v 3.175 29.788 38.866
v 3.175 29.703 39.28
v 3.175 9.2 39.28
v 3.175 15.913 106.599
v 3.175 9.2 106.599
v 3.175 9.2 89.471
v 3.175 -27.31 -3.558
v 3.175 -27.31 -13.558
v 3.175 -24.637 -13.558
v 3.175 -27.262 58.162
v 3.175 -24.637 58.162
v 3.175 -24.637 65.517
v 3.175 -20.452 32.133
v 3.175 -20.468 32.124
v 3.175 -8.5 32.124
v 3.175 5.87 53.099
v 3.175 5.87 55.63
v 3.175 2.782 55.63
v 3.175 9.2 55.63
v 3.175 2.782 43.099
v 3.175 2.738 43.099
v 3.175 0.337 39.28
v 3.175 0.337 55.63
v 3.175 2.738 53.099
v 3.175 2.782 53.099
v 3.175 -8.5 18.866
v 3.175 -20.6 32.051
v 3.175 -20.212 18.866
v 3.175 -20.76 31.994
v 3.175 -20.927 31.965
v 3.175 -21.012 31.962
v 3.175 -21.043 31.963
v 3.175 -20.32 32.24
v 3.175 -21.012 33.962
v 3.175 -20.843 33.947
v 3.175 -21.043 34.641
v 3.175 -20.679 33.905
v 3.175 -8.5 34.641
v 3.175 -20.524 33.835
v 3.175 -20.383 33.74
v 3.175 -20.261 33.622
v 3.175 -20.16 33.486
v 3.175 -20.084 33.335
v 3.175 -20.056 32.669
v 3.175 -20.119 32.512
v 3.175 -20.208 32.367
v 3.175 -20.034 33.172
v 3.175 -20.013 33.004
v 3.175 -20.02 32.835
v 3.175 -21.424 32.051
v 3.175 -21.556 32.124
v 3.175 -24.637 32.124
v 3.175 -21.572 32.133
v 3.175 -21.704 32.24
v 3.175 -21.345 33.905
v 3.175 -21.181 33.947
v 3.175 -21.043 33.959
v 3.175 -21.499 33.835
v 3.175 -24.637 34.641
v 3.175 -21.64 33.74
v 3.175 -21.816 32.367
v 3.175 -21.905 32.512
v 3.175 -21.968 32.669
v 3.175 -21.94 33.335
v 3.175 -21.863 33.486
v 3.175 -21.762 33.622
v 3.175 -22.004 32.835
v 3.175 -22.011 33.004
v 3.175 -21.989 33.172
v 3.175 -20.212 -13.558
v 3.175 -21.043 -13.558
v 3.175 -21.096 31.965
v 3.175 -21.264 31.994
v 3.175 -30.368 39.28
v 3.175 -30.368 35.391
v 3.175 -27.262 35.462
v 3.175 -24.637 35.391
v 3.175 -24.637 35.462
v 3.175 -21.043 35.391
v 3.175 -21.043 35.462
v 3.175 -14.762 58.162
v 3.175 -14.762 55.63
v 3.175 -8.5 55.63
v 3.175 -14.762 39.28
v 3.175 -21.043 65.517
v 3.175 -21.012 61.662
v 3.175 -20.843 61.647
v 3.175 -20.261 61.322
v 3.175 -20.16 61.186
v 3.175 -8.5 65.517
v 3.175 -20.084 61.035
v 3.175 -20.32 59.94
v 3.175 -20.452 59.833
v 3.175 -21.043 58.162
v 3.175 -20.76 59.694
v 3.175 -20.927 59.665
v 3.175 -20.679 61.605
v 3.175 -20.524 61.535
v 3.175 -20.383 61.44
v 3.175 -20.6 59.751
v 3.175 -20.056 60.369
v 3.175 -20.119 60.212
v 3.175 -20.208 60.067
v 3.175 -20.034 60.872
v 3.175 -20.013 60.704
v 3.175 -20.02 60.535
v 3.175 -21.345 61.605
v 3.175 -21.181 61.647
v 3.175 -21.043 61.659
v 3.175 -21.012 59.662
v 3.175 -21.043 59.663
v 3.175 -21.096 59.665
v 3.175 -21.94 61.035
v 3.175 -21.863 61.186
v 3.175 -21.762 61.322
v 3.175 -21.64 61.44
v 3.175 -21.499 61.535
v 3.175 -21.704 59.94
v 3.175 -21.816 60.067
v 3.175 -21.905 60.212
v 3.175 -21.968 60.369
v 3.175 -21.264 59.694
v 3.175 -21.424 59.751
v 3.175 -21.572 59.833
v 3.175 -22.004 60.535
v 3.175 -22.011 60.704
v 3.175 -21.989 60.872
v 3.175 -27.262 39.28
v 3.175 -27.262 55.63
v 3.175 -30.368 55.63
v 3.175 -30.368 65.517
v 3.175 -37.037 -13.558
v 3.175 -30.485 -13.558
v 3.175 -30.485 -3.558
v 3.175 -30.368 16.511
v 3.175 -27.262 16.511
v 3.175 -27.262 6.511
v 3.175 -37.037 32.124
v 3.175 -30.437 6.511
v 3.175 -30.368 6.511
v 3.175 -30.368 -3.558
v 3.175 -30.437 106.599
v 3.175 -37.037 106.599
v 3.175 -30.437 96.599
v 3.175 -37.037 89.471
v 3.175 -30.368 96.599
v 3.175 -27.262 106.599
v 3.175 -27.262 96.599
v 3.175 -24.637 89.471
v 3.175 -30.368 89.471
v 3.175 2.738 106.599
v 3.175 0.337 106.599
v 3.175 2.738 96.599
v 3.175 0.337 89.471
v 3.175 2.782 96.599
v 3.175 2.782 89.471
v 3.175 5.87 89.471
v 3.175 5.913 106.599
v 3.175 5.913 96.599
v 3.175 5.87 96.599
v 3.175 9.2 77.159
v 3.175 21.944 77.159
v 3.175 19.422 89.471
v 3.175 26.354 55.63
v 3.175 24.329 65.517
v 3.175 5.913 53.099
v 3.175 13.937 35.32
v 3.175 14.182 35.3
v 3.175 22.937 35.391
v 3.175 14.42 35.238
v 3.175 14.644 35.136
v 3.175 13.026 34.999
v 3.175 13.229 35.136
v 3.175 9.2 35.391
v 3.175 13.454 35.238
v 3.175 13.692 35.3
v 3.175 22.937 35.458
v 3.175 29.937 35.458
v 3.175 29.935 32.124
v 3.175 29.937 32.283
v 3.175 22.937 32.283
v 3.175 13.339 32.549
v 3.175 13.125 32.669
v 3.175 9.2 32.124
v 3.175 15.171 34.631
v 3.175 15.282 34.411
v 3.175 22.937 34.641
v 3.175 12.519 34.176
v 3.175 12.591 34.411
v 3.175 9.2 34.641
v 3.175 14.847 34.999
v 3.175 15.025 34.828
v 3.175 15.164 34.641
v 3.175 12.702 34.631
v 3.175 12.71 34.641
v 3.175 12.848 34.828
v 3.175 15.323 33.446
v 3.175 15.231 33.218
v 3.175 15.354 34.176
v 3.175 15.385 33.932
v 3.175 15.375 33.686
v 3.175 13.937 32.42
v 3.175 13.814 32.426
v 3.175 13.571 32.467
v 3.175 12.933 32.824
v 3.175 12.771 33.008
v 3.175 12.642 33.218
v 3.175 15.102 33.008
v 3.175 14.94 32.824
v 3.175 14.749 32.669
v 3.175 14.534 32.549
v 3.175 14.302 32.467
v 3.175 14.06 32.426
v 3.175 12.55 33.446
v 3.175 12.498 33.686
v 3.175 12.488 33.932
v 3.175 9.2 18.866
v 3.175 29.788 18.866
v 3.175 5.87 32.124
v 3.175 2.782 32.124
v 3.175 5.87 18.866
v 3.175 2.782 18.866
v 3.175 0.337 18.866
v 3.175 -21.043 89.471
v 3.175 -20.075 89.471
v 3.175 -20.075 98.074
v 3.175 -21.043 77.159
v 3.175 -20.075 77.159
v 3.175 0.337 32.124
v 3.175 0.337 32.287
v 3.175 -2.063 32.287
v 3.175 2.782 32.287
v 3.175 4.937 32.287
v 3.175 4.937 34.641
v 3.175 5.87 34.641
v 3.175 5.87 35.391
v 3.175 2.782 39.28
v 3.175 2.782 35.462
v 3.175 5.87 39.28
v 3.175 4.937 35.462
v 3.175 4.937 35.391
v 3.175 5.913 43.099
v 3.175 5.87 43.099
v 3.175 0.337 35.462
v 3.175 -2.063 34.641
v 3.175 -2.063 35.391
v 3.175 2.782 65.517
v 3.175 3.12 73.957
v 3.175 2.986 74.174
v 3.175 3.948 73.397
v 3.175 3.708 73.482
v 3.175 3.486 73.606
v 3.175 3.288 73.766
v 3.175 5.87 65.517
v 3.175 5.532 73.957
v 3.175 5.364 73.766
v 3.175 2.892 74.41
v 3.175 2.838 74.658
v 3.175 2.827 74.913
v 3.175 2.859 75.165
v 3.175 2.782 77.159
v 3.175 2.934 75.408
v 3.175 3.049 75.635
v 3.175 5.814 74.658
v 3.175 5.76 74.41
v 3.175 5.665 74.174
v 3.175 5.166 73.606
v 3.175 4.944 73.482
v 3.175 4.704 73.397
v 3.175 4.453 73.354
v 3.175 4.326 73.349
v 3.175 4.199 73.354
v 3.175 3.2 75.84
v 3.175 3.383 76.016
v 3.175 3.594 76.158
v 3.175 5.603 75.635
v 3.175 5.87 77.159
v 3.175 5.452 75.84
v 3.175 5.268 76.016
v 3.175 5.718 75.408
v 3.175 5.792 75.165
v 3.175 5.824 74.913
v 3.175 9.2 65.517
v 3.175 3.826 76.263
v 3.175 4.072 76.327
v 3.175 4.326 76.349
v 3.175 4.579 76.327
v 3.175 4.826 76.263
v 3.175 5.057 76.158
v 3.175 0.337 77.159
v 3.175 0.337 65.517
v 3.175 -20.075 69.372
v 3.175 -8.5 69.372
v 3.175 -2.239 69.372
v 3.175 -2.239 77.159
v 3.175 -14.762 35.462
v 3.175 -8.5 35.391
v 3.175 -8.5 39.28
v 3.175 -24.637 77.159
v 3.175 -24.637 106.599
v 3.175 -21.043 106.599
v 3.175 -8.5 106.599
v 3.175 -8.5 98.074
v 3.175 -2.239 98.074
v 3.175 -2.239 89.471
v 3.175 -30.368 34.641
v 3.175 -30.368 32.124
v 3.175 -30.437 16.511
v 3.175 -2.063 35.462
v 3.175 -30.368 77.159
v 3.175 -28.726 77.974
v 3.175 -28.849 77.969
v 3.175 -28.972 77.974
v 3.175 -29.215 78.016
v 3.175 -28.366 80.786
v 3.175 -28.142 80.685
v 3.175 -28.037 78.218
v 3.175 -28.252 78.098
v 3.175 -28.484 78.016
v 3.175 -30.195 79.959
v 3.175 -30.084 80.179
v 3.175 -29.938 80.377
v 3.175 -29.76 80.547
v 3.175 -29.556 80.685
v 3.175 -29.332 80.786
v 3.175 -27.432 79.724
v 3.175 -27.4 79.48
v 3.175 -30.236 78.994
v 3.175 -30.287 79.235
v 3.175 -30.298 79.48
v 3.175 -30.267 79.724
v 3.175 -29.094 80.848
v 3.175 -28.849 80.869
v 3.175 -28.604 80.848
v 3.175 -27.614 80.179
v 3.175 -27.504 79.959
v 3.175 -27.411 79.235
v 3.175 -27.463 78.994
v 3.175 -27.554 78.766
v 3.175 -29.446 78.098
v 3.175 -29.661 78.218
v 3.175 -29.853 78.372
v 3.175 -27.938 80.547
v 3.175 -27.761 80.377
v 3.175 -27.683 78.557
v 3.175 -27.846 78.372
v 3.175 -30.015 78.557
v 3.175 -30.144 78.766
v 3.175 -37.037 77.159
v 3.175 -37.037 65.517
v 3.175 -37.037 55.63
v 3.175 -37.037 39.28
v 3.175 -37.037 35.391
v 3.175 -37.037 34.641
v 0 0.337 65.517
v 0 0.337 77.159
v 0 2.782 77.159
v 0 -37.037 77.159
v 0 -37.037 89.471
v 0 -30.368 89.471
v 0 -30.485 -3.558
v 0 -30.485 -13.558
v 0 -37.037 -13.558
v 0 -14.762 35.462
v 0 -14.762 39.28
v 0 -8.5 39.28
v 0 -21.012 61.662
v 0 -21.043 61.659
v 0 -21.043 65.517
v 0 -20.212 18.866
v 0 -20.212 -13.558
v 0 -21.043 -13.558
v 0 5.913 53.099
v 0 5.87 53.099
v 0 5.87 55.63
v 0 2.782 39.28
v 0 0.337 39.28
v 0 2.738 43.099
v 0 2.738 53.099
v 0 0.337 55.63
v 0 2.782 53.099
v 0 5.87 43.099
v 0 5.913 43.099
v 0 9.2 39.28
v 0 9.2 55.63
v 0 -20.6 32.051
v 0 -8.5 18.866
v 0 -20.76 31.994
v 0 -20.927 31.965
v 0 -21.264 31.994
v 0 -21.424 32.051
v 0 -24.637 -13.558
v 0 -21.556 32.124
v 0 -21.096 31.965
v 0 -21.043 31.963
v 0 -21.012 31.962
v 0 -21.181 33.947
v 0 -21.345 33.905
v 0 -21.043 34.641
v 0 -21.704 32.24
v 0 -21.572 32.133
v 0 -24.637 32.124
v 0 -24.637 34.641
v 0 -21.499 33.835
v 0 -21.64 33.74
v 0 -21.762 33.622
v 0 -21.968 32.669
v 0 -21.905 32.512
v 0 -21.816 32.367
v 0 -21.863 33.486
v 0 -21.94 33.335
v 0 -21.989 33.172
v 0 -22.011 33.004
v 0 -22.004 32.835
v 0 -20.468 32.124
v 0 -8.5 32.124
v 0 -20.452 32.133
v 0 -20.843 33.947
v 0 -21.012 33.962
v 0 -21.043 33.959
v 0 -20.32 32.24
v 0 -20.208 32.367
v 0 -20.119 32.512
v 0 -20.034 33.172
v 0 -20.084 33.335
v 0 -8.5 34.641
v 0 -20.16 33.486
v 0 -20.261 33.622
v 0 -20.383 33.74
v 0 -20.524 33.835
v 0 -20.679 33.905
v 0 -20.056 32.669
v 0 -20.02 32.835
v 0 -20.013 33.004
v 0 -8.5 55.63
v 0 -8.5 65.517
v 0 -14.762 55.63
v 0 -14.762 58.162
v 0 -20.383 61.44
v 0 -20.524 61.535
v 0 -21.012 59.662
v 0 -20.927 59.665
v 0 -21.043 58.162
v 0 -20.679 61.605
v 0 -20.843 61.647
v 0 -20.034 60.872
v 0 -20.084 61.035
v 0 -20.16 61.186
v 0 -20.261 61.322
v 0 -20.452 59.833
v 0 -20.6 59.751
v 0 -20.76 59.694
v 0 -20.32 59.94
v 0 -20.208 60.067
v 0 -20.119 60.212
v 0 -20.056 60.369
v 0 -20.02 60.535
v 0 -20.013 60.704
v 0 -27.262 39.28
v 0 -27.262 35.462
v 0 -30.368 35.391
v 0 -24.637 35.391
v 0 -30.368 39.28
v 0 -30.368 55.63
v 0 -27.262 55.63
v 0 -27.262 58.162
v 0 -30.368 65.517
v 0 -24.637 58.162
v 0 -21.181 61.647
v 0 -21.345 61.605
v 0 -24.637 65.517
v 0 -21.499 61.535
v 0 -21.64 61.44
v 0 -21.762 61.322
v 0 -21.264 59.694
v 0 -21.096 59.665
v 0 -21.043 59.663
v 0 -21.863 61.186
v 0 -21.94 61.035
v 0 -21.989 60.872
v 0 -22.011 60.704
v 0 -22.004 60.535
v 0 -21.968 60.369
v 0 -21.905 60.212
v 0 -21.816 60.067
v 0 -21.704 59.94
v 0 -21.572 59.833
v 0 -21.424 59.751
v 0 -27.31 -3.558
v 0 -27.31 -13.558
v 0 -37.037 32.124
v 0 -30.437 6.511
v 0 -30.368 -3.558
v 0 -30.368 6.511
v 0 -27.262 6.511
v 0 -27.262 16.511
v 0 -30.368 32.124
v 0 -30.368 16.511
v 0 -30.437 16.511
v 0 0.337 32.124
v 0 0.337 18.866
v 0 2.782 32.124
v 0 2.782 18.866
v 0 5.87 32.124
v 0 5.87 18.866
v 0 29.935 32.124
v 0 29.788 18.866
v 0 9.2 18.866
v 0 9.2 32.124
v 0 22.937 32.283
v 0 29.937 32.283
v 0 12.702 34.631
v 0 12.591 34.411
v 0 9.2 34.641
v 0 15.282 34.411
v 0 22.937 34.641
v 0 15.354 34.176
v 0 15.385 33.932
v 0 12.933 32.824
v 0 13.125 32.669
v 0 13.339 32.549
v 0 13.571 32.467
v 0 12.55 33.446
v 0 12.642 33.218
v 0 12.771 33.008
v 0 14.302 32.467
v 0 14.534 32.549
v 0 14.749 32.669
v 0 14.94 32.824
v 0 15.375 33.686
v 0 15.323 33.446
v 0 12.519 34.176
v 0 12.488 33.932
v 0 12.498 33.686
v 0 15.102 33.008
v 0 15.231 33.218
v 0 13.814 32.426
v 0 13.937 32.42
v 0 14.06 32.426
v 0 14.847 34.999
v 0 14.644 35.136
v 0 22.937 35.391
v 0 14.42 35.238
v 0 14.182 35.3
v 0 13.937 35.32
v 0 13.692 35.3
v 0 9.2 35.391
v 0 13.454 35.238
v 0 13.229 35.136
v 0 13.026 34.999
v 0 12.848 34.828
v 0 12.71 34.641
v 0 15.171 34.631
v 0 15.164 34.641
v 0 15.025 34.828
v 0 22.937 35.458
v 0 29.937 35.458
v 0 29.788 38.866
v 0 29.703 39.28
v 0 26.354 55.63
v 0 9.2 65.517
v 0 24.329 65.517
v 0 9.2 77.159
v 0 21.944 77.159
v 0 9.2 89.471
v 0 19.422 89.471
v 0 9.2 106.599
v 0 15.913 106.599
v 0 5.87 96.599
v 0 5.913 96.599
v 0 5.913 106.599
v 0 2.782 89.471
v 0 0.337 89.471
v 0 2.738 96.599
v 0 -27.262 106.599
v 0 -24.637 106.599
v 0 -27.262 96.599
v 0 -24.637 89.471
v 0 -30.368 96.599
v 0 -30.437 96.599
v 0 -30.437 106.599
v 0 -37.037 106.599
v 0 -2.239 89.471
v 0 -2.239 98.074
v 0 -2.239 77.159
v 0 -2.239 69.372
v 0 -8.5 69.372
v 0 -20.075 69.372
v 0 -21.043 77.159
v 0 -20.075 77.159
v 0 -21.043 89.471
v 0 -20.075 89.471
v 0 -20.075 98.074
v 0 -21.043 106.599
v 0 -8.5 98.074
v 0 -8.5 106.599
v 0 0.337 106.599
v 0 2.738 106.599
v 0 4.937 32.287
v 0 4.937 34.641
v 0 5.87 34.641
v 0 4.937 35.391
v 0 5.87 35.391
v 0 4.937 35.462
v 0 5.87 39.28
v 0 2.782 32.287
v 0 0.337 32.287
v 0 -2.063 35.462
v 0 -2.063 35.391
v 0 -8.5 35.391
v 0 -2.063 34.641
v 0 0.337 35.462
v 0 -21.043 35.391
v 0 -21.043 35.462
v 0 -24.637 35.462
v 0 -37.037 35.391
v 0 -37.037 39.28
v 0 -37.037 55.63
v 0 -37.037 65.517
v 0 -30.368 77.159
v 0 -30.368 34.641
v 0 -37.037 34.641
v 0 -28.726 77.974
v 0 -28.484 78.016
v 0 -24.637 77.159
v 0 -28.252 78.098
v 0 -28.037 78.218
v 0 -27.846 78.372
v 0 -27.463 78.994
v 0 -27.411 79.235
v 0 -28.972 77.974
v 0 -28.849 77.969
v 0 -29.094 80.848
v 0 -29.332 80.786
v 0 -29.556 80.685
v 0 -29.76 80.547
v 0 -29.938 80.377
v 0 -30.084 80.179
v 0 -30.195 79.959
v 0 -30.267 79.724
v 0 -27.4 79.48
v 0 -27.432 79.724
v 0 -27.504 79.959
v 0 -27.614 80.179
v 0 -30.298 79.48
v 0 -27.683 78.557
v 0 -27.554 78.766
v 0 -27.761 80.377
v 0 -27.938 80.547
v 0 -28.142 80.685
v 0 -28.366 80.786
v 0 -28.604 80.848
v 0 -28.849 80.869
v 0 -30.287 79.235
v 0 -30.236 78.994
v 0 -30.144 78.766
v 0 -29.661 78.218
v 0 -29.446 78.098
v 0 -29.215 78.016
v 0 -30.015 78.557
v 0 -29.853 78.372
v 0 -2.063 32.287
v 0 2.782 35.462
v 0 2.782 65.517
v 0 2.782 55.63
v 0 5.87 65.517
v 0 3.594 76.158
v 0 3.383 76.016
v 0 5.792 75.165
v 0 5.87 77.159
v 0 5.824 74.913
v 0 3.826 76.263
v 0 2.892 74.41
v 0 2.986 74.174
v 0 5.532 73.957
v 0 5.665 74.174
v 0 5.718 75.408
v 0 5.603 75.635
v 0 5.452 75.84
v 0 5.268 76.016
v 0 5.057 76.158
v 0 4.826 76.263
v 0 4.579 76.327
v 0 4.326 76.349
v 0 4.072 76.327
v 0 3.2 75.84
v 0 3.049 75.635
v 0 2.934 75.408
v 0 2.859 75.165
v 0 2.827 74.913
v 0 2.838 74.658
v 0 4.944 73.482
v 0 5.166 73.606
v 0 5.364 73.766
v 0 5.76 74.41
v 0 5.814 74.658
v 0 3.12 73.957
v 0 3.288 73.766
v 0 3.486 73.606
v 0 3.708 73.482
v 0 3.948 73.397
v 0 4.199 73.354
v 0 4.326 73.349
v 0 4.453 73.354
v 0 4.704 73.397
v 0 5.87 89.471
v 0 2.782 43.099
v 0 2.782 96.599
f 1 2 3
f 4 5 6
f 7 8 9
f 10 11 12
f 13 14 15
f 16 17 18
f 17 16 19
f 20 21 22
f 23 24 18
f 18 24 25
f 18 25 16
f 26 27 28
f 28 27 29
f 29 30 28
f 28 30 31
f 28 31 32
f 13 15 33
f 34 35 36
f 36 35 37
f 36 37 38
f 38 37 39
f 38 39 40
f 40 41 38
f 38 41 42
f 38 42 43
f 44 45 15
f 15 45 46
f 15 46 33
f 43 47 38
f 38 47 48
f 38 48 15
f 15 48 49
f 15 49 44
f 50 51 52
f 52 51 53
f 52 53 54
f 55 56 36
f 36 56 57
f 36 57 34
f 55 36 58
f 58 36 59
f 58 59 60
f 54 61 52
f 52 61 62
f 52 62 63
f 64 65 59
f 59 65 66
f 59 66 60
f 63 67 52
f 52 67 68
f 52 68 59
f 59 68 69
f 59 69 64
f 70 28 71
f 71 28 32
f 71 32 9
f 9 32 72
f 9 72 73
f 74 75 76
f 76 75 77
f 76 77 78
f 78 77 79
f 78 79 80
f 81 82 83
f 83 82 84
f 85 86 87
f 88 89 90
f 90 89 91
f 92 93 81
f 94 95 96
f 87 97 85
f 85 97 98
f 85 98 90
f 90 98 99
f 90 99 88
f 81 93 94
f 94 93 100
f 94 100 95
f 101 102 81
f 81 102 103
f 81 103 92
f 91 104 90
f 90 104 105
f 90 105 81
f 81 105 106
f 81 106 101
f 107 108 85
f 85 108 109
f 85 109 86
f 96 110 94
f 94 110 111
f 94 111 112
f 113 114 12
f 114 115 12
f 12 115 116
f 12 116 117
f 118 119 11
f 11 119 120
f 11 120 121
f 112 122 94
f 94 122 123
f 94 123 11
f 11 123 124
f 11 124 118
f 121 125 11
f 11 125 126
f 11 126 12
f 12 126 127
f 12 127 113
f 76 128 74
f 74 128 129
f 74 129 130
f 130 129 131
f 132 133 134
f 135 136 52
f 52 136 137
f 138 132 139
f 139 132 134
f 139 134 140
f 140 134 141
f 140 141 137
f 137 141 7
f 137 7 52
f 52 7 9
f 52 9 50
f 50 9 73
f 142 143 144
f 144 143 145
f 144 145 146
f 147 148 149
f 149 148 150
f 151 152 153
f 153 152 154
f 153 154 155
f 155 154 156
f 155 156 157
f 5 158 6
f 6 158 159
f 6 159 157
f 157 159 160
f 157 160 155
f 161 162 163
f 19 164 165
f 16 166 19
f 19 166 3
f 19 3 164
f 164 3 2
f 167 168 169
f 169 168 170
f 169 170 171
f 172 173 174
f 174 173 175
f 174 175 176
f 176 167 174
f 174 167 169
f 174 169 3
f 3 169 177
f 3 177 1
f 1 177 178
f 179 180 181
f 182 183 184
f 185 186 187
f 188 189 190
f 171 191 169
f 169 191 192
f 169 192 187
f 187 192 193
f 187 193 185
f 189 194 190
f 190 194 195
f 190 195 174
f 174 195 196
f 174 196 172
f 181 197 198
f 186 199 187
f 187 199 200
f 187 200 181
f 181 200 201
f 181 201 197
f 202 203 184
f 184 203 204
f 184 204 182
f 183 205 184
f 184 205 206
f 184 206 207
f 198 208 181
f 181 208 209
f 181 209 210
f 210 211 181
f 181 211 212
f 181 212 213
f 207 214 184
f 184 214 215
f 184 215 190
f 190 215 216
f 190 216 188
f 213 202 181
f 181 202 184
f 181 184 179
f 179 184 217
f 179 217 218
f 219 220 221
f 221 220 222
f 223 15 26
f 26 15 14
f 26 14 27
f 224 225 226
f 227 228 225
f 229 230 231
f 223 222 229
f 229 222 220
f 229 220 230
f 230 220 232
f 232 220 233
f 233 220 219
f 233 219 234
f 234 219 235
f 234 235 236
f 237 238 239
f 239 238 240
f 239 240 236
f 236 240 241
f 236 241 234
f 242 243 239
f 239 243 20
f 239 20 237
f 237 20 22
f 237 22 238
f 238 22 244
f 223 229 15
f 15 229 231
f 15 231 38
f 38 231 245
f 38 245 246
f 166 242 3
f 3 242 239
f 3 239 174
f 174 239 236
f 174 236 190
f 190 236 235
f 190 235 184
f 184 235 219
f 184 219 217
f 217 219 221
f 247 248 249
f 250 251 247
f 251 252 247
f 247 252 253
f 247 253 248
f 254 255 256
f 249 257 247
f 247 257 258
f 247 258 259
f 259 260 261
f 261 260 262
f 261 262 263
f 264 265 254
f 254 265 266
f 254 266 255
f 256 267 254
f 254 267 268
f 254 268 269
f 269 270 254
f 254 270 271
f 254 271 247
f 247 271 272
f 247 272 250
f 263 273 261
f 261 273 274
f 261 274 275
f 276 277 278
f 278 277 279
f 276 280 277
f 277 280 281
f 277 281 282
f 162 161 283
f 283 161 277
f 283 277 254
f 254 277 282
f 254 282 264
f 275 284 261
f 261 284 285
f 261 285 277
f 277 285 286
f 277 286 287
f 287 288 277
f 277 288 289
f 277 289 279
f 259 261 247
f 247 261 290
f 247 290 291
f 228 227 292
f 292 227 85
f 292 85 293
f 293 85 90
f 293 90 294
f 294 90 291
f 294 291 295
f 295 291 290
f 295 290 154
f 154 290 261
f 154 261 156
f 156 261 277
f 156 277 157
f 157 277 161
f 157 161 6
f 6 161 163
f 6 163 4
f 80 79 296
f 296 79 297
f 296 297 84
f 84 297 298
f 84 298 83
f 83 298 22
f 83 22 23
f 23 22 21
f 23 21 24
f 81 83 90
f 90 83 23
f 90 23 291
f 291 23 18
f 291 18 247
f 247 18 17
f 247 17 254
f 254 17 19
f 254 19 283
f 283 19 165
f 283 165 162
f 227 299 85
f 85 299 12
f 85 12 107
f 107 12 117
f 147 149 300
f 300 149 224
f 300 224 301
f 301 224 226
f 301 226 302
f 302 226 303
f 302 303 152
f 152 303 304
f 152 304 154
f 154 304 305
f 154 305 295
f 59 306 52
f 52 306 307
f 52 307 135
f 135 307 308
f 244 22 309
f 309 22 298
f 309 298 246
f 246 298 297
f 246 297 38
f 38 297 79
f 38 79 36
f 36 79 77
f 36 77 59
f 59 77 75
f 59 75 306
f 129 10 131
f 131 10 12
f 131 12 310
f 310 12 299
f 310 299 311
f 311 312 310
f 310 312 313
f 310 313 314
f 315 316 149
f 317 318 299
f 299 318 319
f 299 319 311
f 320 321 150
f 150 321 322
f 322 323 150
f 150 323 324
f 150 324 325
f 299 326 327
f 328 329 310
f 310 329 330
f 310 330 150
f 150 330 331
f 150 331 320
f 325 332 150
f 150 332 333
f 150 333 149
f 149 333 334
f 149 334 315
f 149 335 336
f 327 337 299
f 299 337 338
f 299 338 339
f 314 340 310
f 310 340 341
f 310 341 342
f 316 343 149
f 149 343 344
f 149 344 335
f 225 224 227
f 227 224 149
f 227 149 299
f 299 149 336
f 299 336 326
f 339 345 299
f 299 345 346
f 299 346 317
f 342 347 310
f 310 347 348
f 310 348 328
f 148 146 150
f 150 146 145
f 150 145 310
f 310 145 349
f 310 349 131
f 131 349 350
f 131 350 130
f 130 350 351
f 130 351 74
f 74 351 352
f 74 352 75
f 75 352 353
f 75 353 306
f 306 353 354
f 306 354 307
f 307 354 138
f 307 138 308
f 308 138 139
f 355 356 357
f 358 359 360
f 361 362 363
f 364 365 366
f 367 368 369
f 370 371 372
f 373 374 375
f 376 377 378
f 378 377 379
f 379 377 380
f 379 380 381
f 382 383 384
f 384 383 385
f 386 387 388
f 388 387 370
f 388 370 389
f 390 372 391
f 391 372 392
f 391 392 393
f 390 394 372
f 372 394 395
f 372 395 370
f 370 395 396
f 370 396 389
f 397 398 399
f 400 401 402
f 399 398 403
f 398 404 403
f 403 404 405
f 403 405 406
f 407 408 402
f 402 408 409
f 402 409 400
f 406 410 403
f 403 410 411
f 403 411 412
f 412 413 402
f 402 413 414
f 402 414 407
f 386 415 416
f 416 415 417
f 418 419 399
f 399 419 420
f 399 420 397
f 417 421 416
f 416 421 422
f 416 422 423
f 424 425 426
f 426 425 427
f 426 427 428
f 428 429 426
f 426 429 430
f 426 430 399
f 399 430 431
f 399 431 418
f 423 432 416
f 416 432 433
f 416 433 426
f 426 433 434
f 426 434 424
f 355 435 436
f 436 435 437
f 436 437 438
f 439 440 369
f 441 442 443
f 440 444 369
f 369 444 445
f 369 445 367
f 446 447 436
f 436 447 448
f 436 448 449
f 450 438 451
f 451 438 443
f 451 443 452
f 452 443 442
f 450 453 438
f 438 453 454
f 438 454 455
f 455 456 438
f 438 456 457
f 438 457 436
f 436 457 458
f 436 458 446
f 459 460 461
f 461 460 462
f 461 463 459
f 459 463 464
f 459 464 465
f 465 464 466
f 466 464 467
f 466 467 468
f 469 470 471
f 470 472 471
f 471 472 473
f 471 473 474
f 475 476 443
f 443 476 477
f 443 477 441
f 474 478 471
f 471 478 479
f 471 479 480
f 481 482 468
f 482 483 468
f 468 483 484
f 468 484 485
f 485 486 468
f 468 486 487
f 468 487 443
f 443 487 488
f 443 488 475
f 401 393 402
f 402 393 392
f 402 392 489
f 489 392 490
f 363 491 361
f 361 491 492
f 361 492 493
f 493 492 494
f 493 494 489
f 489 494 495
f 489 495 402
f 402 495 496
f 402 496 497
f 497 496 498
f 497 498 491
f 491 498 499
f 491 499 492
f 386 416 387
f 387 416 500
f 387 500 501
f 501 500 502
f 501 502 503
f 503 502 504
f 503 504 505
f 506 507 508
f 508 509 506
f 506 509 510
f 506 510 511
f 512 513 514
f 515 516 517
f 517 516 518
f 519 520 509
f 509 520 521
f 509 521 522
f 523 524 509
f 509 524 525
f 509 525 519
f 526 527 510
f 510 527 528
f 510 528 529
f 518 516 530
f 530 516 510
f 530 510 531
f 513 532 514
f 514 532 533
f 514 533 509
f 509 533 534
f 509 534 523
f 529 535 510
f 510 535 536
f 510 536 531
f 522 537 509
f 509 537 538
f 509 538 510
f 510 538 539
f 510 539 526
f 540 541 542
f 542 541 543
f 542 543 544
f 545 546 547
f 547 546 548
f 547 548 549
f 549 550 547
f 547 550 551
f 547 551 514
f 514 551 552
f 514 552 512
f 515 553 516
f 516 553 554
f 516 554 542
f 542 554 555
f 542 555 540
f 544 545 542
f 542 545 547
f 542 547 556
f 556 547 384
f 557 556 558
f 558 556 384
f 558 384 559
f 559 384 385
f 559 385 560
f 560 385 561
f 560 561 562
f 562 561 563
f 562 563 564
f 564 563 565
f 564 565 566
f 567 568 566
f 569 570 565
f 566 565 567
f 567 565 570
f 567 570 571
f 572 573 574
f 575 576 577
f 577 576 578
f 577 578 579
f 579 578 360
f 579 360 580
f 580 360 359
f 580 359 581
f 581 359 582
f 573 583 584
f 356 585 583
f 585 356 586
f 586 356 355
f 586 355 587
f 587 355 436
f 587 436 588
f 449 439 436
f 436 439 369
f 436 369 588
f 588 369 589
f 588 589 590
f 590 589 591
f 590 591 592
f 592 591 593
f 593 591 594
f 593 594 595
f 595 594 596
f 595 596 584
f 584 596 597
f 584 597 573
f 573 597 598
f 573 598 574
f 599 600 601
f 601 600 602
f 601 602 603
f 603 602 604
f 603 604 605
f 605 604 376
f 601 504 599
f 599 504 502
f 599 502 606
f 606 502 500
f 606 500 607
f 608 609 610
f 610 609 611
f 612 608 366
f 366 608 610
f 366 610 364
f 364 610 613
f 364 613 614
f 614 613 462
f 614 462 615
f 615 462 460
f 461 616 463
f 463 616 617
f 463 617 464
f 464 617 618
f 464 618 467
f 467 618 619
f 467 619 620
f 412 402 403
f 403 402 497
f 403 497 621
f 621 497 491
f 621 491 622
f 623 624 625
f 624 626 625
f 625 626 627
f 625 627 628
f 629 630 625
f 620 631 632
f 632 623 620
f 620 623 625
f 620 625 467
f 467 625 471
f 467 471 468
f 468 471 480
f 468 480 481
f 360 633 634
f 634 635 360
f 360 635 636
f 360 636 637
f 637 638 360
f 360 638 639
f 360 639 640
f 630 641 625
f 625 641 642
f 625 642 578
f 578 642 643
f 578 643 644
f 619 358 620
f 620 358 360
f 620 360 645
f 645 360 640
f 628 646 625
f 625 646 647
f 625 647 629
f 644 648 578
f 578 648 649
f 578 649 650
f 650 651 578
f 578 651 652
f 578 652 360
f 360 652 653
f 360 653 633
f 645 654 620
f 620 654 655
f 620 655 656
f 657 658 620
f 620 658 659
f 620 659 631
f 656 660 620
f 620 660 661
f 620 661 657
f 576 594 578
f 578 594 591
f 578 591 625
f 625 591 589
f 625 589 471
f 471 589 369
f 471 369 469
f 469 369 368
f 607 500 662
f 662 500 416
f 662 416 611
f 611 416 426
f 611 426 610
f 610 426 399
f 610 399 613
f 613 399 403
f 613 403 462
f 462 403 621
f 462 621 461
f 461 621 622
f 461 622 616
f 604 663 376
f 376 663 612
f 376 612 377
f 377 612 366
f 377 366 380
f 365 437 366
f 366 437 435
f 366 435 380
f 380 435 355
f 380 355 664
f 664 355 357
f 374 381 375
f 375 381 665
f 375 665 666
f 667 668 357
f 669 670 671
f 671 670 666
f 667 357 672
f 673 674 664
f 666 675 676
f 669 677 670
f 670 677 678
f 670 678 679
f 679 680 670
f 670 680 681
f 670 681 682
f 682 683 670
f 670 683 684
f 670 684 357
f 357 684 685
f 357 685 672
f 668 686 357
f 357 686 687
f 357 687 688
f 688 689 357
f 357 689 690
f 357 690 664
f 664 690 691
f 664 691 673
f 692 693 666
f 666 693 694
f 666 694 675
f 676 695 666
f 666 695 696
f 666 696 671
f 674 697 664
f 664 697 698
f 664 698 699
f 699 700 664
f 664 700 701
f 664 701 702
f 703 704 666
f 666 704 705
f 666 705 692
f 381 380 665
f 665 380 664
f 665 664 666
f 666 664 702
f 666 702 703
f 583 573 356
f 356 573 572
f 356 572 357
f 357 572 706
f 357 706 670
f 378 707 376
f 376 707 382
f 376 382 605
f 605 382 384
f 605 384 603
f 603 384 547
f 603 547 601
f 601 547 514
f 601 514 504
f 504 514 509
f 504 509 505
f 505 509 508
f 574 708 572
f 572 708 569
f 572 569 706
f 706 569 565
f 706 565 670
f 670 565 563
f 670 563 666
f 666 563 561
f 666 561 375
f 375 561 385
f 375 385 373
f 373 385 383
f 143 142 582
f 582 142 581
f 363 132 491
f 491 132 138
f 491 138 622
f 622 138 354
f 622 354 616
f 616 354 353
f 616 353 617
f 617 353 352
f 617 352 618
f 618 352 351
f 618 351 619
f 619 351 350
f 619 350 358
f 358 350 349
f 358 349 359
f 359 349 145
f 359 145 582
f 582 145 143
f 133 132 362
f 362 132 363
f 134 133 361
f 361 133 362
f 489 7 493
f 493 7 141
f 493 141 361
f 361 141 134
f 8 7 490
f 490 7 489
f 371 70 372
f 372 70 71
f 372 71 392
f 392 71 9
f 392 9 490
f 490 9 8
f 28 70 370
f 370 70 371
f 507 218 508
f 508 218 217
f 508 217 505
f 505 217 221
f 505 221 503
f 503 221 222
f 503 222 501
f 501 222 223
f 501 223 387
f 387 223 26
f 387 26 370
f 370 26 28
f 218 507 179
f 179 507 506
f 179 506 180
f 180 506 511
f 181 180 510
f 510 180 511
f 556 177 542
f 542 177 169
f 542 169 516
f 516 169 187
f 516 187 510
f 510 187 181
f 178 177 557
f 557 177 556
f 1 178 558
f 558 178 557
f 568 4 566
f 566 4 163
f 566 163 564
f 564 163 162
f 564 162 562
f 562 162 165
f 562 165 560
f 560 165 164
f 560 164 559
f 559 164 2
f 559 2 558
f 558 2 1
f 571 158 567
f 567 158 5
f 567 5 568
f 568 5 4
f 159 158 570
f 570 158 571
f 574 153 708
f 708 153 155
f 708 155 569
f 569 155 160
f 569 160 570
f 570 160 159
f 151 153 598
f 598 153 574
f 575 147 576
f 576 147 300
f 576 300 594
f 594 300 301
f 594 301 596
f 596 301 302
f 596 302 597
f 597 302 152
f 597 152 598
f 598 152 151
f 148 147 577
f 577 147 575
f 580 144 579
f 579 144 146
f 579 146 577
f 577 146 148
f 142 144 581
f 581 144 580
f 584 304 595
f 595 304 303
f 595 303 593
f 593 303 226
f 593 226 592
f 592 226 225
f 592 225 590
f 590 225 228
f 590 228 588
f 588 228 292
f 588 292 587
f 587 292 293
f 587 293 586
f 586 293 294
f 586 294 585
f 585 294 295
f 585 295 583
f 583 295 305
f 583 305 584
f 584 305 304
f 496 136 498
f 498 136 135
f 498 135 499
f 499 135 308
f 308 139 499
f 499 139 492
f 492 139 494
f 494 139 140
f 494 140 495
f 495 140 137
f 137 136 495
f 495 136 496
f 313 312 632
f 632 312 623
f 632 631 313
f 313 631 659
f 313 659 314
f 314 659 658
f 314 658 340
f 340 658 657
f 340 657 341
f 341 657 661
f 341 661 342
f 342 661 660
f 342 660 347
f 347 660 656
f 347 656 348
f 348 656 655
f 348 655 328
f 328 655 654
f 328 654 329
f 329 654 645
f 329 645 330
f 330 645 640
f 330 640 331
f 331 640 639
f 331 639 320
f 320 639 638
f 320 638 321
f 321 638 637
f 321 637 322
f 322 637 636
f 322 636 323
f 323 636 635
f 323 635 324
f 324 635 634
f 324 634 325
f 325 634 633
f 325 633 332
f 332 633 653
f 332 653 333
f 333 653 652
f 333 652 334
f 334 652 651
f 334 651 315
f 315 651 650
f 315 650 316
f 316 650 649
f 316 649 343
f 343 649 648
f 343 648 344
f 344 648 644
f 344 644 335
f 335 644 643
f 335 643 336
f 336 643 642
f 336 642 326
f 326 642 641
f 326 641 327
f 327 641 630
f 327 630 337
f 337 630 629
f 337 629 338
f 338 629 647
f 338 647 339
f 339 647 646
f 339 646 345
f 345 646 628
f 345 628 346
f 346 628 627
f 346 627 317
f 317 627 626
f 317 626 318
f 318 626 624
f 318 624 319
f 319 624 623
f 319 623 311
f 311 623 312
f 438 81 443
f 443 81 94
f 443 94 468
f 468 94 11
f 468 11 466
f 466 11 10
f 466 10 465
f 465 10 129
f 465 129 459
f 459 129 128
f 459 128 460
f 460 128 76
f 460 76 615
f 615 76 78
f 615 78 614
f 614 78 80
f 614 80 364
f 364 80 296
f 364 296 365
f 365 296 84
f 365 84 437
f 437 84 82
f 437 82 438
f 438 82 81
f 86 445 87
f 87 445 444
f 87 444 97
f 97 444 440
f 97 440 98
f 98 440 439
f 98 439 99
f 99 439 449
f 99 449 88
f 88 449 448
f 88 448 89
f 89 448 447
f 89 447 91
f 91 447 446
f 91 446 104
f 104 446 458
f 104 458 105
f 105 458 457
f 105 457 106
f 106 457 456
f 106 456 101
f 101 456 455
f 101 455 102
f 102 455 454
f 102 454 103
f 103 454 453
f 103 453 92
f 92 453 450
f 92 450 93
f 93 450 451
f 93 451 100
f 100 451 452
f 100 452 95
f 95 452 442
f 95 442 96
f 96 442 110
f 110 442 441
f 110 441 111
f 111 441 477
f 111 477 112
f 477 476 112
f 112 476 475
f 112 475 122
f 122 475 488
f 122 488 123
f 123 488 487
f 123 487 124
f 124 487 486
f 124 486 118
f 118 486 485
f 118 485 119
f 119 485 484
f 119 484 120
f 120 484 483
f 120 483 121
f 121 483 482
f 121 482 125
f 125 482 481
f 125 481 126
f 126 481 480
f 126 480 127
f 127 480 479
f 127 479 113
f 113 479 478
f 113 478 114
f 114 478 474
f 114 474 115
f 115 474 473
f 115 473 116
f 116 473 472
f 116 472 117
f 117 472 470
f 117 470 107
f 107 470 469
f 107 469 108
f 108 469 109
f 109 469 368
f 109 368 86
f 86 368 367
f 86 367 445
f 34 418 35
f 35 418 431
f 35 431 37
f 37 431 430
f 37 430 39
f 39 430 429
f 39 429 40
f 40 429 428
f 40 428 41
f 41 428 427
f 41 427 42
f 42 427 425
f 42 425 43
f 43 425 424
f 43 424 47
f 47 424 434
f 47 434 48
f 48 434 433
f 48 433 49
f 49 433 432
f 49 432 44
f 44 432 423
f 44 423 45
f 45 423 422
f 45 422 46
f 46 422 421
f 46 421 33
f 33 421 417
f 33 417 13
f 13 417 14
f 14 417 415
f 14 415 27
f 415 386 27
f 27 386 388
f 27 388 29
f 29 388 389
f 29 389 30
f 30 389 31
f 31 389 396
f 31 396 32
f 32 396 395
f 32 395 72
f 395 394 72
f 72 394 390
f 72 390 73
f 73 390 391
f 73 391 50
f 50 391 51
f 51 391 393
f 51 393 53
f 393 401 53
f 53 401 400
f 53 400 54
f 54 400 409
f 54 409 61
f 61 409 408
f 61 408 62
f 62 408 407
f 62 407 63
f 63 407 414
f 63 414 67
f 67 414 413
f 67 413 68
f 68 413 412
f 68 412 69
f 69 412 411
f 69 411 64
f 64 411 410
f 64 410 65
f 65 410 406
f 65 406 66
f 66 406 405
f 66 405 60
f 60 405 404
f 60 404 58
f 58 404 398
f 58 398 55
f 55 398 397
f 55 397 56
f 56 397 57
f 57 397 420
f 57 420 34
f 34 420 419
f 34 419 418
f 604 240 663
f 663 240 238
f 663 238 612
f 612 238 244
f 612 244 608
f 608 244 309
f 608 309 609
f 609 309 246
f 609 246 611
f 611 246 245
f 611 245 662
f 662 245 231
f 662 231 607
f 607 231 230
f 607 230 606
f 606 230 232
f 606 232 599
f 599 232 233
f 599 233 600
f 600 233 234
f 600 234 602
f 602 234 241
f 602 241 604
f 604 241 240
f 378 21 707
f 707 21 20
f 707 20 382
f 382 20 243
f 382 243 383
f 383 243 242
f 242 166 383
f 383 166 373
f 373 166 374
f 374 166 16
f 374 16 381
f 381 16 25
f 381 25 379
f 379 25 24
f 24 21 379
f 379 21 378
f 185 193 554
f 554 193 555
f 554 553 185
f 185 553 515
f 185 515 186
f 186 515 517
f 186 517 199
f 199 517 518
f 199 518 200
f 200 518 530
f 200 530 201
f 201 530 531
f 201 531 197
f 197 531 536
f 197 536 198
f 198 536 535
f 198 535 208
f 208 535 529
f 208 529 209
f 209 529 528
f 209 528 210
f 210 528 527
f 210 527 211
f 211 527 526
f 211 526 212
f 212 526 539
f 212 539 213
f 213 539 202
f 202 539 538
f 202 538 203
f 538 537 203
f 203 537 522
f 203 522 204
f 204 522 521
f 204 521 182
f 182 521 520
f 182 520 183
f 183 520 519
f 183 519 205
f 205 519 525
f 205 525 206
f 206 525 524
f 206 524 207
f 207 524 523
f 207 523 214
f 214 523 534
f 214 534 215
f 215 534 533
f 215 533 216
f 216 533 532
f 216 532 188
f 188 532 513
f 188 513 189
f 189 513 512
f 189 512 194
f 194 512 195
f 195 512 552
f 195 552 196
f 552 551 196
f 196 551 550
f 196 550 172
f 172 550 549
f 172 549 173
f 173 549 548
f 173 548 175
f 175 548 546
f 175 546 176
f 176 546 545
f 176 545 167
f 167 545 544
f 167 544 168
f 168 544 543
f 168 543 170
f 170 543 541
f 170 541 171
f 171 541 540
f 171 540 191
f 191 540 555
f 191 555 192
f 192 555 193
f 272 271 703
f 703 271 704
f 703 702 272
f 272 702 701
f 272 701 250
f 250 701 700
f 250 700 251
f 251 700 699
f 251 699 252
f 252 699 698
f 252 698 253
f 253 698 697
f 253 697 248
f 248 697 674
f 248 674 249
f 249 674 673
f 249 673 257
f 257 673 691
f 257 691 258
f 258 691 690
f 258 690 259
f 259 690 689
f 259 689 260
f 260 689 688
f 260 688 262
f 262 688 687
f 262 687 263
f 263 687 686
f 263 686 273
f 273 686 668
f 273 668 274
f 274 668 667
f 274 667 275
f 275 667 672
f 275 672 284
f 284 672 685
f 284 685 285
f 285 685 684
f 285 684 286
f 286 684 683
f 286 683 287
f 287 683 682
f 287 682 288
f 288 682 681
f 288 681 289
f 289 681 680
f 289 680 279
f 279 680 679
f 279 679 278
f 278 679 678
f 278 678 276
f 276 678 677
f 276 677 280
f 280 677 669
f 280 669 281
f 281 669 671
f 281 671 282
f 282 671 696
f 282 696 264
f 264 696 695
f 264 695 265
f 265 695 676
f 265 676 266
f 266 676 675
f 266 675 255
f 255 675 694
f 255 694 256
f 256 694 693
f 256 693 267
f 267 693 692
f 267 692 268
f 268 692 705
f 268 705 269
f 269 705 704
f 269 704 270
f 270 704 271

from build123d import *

# Parameters (mm, degrees)
SKETCH1_R      = 1.45
SKETCH1_R_2    = 1
SKETCH1_R_3    = 1.5
SKETCH1_W      = 22.7
SKETCH1_H      = 12.5
SKETCH1_W_2    = 10
SKETCH1_H_2    = 3.175
SKETCH1_W_3    = 3.175
SKETCH1_H_3    = 7
SKETCH1_W_4    = 28.701572838
SKETCH1_H_4    = 17.835977406
EXTRUDE1_DEPTH = 3.175


with BuildPart() as part:
    # Sketch1 → Extrude1 (new body)
    with BuildSketch(Plane(origin=(0, 0, 0), x_dir=(0, 0, -1), z_dir=(1, 0, 0))):
        Polygon((-106.598842421, -37.036692127), (13.557602199, -37.036692127), (13.557602199, -30.485333973), (3.557602199, -30.485333973), (3.557602199, -27.310333973), (13.557602199, -27.310333973), (13.557602199, -20.211692127), (-18.865609087, -20.211692127), (-18.865609087, 29.788307873), (-32.282953974, 29.936573589), (-32.282953974, 22.936573589), (-35.457953974, 22.936573589), (-35.457953974, 29.936573589), (-38.865609087, 29.788307873), (-106.598842421, 15.913307873), (-106.598842421, 5.913307873), (-96.598842421, 5.913307873), (-96.598842421, 2.738307873), (-106.598842421, 2.738307873), (-106.598842421, -27.261692127), (-96.598842421, -27.261692127), (-96.598842421, -30.436692127), (-106.598842421, -30.436692127), align=None)
        with Locations((-79.418842421, -28.849192127)):
            Circle(SKETCH1_R, mode=Mode.SUBTRACT)
        with Locations((-60.661798953, -21.011692127)):
            Circle(SKETCH1_R_2, mode=Mode.SUBTRACT)
        with Locations((-32.961798953, -21.011692127)):
            Circle(SKETCH1_R_2, mode=Mode.SUBTRACT)
        with Locations((-33.870453974, 13.93657382)):
            Circle(SKETCH1_R, mode=Mode.SUBTRACT)
        with Locations((-74.848842421, 4.325807873)):
            Circle(SKETCH1_R_3, mode=Mode.SUBTRACT)
        with Locations((-46.811798953, -21.011692127)):
            Rectangle(SKETCH1_W, SKETCH1_H, mode=Mode.SUBTRACT)
        with Locations((-11.510665381, -28.849192127)):
            Rectangle(SKETCH1_W_2, SKETCH1_H_2, mode=Mode.SUBTRACT)
        with Locations((-48.098842421, 4.325807873)):
            Rectangle(SKETCH1_W_2, SKETCH1_H_2, mode=Mode.SUBTRACT)
        with Locations((-33.874298953, 1.43657382)):
            Rectangle(SKETCH1_W_3, SKETCH1_H_3, mode=Mode.SUBTRACT)
        with Locations((-83.72320649, -11.157017929)):
            Rectangle(SKETCH1_W_4, SKETCH1_H_4, mode=Mode.SUBTRACT)
    extrude(amount=EXTRUDE1_DEPTH)


solid = part.part
